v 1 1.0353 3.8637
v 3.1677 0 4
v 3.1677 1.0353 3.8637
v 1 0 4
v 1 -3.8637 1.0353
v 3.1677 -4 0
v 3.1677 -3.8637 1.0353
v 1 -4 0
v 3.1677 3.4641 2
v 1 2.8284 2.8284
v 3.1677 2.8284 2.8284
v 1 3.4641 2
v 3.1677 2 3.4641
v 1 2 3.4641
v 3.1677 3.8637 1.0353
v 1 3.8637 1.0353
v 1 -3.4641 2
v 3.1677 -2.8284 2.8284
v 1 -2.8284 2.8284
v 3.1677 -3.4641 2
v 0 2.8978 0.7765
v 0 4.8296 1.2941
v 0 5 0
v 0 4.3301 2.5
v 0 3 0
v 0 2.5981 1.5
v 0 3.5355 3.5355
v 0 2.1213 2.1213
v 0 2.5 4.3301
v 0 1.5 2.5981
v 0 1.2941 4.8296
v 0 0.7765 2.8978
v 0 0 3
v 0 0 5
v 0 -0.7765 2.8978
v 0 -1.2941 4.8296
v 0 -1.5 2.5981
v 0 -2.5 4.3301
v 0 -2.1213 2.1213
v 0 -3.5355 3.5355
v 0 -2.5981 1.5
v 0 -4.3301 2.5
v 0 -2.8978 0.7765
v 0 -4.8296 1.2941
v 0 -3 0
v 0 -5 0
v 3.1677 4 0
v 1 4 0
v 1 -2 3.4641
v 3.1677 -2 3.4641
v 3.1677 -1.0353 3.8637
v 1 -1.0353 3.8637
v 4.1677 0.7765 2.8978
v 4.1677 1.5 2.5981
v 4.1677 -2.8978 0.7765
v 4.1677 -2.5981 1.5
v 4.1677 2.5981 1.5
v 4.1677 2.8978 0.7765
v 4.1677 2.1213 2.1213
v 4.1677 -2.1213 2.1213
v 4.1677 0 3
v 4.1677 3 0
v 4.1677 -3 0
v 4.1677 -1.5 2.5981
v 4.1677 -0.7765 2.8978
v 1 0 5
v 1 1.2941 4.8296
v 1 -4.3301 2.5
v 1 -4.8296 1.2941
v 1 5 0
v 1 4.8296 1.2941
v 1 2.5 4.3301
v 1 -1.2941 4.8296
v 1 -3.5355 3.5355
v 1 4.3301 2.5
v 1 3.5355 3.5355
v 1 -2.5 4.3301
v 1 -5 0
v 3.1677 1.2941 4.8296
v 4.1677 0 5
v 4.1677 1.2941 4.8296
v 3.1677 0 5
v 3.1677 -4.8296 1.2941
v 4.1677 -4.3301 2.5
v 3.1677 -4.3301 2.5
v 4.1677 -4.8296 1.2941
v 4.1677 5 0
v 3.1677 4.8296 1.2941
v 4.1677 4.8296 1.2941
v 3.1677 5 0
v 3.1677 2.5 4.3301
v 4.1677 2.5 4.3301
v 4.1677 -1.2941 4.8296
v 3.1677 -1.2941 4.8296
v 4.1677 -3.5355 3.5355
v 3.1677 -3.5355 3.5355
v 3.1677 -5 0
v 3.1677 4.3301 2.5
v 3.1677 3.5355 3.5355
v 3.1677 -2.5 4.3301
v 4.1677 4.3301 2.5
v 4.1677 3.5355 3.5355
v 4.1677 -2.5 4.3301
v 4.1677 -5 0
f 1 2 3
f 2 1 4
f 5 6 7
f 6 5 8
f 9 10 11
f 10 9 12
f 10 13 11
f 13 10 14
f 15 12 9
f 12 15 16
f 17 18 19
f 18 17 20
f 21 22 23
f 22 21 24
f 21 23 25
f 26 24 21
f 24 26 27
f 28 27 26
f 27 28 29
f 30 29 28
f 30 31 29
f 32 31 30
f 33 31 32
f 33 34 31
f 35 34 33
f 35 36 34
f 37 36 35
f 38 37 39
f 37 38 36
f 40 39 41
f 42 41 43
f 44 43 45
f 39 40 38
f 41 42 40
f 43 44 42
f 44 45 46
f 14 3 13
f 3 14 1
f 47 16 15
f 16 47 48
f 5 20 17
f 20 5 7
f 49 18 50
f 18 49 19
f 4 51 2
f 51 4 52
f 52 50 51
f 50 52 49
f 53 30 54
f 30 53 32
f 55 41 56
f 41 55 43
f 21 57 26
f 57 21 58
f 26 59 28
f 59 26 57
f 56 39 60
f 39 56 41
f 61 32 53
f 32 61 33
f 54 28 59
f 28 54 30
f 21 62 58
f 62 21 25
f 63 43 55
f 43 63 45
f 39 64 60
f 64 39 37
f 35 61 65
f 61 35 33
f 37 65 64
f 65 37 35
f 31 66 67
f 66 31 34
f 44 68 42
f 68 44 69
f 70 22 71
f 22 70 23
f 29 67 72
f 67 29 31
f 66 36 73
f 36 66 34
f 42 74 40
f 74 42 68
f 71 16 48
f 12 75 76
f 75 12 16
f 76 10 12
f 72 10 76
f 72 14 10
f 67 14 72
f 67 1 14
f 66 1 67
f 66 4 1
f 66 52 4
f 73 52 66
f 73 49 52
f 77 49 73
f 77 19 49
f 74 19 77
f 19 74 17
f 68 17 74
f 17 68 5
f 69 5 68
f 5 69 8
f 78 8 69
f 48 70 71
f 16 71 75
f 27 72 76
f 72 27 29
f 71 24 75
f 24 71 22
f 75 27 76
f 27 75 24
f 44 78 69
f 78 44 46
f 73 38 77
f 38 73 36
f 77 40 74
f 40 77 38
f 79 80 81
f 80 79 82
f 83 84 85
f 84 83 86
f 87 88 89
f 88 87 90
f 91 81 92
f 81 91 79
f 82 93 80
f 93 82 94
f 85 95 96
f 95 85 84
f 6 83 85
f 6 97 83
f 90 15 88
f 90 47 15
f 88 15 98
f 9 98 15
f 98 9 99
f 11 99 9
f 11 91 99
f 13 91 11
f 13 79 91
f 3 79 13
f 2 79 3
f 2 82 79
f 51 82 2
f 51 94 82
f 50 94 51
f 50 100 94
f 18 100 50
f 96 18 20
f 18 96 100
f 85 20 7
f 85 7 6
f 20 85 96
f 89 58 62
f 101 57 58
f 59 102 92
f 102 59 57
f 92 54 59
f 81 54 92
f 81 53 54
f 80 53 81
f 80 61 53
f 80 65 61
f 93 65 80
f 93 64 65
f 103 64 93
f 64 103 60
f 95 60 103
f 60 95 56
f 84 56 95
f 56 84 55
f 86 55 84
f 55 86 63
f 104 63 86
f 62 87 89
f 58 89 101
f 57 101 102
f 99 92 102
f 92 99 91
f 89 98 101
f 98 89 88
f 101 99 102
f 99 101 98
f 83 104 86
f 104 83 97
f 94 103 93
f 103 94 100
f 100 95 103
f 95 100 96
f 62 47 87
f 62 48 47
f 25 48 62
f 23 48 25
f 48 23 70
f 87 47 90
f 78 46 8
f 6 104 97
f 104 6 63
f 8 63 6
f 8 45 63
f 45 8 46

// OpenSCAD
// file: ../build_environments.scad
// build_environments.scad: modules to build level sections
//

module pool(diameter=10.0, wall_height=2.0, step_width=3.0, connections=[])
{
    difference() {
        union() {
        difference() {
            cylinder(h=0.5,r1=diameter+step_width,r2=diameter+step_width,$fn=48);
            translate([0,0,-0.1])
                cylinder(h=0.7,r1=diameter,r2=diameter,$fn=48);
        }
        difference() {
            cylinder(h=wall_height,r1=diameter+step_width+1.0,r2=diameter+step_width+1.0,$fn=48);
            translate([0,0,-0.1])
                cylinder(h=wall_height+0.2,r1=diameter+step_width,r2=diameter+step_width,$fn=48);
        }
        }
    
        for (c = connections)
        {
            rotate([0,90,0]) {
                angle = atan2(c[1],c[0]);
                rotate([-angle,0,0]) {
                    cylinder(h=diameter+5.0,r1=c[2],r2=c[2],$fn=48);
                }
            }
        }
    }
}

module straight(length=10.0, width=2.0, dy1=0.0, dy2=0.0, dz=0.0)
{
    dims = [0, 0, 0, 0, 0, (dz/length)];
    matrix = [
        [ 1, dims[0], dims[1], 0 ],
        [ dims[2], 1, dims[4], 0 ],
        [ dims[5], dims[3], 1, 0 ],
        [ 0, 0, 0, 1 ]
    ];
    multmatrix(matrix)
    difference() {
        translate([dy1,0,0])
        union() {
            rotate([0,90,0]) {
                difference() {
                    cylinder(h=(length-dy1-dy2),r1=width+1.0,r2=width+1.0,$fn=24);
                    translate([0,0,-0.1])
                        cylinder(h=(length-dy1-dy2+0.2),r1=width,r2=width,$fn=24);
                }
                difference() {
                    cylinder(h=1.0,r1=width+2.0,r2=width+2.0,$fn=24);
                    translate([0,0,-0.1])
                        cylinder(h=1.2,r1=width,r2=width,$fn=24);
                }
                translate([0,0,(length-dy1-dy2)-1.0]) {
                    difference() {
                        cylinder(h=1.0,r1=width+2.0,r2=width+2.0,$fn=24);
                        translate([0,0,-0.1])
                            cylinder(h=1.2,r1=width,r2=width,$fn=24);
                    }
                }
            }
        }
        translate([0,0,-(2*width+4.0)/2])
            cube([3*length,3*length,2*width+4.0],center=true);
    }
}

module curve(p0=[0,0], center=[0,0], dir=1, angle=0.0, width=2.0)
{
    radius = sqrt((p0[0]-center[0])*(p0[0]-center[0]) + (p0[1]-center[1])*(p0[1]-center[1]));
    if (dir == 0) {
        difference() {
            rotate([0,0,-90])
            difference() {
                rotate_extrude(angle = angle, convexity = 10, $fn=32)
                    translate([radius, 0, 0])
                        circle(r = width+1.0,$fn=24);
                rotate([0,0,-1.0])
                    rotate_extrude(angle = angle+2.0, convexity = 10, $fn=32)
                        translate([radius, 0, 0])
                            circle(r = width,$fn=24);
            }
            translate([0,0,-(2*width+4.0)/2])
                cube([5*radius,5*radius,2*width+4.0],center=true);
        }
    }
    else {
        difference() {
            rotate([0,0,90])
            difference() {
                rotate_extrude(angle = -angle, convexity = 10, $fn=32)
                    translate([radius, 0, 0])
                        circle(r = width+1.0,$fn=24);
                rotate([0,0,1.0])
                    rotate_extrude(angle = -angle-2.0, convexity = 10, $fn=32)
                        translate([radius, 0, 0])
                            circle(r = width,$fn=24);
            }
            translate([0,0,-(2*width+4.0)/2])
                cube([5*radius,5*radius,2*width+4.0],center=true);
        }
    }

}

// test pool
//pool(diameter=12.0000, wall_height=3.0000, step_width=3.0000, connections=[[0.0000,-26.0000,2.0000], [23.6074,0.0000,2.0000]]);

// test straight, slope
//straight(length=26.0000, width=2.0000, dy1=11.8322, dy2=6.7082, dz=0.0000);
//straight(length=29.1549, width=12.0000, dy1=0.0000, dy2=0.0000, dz=-15.0000);

// test curve
//curve(p0=[23.6074, 0.0000], center=[23.6074, 5.0000], dir=0, angle=60.1011, width=2.0000);
//curve(p0=[33.6426, 12.4219], center=[37.9771, 9.9295], dir=1, angle=120.4627, width=2.0000);
// main file
use <../build_environments.scad>;
straight(length=13.7071, width=3.0000, dy1=0.0000, dy2=9.5394, dz=0.0000);
